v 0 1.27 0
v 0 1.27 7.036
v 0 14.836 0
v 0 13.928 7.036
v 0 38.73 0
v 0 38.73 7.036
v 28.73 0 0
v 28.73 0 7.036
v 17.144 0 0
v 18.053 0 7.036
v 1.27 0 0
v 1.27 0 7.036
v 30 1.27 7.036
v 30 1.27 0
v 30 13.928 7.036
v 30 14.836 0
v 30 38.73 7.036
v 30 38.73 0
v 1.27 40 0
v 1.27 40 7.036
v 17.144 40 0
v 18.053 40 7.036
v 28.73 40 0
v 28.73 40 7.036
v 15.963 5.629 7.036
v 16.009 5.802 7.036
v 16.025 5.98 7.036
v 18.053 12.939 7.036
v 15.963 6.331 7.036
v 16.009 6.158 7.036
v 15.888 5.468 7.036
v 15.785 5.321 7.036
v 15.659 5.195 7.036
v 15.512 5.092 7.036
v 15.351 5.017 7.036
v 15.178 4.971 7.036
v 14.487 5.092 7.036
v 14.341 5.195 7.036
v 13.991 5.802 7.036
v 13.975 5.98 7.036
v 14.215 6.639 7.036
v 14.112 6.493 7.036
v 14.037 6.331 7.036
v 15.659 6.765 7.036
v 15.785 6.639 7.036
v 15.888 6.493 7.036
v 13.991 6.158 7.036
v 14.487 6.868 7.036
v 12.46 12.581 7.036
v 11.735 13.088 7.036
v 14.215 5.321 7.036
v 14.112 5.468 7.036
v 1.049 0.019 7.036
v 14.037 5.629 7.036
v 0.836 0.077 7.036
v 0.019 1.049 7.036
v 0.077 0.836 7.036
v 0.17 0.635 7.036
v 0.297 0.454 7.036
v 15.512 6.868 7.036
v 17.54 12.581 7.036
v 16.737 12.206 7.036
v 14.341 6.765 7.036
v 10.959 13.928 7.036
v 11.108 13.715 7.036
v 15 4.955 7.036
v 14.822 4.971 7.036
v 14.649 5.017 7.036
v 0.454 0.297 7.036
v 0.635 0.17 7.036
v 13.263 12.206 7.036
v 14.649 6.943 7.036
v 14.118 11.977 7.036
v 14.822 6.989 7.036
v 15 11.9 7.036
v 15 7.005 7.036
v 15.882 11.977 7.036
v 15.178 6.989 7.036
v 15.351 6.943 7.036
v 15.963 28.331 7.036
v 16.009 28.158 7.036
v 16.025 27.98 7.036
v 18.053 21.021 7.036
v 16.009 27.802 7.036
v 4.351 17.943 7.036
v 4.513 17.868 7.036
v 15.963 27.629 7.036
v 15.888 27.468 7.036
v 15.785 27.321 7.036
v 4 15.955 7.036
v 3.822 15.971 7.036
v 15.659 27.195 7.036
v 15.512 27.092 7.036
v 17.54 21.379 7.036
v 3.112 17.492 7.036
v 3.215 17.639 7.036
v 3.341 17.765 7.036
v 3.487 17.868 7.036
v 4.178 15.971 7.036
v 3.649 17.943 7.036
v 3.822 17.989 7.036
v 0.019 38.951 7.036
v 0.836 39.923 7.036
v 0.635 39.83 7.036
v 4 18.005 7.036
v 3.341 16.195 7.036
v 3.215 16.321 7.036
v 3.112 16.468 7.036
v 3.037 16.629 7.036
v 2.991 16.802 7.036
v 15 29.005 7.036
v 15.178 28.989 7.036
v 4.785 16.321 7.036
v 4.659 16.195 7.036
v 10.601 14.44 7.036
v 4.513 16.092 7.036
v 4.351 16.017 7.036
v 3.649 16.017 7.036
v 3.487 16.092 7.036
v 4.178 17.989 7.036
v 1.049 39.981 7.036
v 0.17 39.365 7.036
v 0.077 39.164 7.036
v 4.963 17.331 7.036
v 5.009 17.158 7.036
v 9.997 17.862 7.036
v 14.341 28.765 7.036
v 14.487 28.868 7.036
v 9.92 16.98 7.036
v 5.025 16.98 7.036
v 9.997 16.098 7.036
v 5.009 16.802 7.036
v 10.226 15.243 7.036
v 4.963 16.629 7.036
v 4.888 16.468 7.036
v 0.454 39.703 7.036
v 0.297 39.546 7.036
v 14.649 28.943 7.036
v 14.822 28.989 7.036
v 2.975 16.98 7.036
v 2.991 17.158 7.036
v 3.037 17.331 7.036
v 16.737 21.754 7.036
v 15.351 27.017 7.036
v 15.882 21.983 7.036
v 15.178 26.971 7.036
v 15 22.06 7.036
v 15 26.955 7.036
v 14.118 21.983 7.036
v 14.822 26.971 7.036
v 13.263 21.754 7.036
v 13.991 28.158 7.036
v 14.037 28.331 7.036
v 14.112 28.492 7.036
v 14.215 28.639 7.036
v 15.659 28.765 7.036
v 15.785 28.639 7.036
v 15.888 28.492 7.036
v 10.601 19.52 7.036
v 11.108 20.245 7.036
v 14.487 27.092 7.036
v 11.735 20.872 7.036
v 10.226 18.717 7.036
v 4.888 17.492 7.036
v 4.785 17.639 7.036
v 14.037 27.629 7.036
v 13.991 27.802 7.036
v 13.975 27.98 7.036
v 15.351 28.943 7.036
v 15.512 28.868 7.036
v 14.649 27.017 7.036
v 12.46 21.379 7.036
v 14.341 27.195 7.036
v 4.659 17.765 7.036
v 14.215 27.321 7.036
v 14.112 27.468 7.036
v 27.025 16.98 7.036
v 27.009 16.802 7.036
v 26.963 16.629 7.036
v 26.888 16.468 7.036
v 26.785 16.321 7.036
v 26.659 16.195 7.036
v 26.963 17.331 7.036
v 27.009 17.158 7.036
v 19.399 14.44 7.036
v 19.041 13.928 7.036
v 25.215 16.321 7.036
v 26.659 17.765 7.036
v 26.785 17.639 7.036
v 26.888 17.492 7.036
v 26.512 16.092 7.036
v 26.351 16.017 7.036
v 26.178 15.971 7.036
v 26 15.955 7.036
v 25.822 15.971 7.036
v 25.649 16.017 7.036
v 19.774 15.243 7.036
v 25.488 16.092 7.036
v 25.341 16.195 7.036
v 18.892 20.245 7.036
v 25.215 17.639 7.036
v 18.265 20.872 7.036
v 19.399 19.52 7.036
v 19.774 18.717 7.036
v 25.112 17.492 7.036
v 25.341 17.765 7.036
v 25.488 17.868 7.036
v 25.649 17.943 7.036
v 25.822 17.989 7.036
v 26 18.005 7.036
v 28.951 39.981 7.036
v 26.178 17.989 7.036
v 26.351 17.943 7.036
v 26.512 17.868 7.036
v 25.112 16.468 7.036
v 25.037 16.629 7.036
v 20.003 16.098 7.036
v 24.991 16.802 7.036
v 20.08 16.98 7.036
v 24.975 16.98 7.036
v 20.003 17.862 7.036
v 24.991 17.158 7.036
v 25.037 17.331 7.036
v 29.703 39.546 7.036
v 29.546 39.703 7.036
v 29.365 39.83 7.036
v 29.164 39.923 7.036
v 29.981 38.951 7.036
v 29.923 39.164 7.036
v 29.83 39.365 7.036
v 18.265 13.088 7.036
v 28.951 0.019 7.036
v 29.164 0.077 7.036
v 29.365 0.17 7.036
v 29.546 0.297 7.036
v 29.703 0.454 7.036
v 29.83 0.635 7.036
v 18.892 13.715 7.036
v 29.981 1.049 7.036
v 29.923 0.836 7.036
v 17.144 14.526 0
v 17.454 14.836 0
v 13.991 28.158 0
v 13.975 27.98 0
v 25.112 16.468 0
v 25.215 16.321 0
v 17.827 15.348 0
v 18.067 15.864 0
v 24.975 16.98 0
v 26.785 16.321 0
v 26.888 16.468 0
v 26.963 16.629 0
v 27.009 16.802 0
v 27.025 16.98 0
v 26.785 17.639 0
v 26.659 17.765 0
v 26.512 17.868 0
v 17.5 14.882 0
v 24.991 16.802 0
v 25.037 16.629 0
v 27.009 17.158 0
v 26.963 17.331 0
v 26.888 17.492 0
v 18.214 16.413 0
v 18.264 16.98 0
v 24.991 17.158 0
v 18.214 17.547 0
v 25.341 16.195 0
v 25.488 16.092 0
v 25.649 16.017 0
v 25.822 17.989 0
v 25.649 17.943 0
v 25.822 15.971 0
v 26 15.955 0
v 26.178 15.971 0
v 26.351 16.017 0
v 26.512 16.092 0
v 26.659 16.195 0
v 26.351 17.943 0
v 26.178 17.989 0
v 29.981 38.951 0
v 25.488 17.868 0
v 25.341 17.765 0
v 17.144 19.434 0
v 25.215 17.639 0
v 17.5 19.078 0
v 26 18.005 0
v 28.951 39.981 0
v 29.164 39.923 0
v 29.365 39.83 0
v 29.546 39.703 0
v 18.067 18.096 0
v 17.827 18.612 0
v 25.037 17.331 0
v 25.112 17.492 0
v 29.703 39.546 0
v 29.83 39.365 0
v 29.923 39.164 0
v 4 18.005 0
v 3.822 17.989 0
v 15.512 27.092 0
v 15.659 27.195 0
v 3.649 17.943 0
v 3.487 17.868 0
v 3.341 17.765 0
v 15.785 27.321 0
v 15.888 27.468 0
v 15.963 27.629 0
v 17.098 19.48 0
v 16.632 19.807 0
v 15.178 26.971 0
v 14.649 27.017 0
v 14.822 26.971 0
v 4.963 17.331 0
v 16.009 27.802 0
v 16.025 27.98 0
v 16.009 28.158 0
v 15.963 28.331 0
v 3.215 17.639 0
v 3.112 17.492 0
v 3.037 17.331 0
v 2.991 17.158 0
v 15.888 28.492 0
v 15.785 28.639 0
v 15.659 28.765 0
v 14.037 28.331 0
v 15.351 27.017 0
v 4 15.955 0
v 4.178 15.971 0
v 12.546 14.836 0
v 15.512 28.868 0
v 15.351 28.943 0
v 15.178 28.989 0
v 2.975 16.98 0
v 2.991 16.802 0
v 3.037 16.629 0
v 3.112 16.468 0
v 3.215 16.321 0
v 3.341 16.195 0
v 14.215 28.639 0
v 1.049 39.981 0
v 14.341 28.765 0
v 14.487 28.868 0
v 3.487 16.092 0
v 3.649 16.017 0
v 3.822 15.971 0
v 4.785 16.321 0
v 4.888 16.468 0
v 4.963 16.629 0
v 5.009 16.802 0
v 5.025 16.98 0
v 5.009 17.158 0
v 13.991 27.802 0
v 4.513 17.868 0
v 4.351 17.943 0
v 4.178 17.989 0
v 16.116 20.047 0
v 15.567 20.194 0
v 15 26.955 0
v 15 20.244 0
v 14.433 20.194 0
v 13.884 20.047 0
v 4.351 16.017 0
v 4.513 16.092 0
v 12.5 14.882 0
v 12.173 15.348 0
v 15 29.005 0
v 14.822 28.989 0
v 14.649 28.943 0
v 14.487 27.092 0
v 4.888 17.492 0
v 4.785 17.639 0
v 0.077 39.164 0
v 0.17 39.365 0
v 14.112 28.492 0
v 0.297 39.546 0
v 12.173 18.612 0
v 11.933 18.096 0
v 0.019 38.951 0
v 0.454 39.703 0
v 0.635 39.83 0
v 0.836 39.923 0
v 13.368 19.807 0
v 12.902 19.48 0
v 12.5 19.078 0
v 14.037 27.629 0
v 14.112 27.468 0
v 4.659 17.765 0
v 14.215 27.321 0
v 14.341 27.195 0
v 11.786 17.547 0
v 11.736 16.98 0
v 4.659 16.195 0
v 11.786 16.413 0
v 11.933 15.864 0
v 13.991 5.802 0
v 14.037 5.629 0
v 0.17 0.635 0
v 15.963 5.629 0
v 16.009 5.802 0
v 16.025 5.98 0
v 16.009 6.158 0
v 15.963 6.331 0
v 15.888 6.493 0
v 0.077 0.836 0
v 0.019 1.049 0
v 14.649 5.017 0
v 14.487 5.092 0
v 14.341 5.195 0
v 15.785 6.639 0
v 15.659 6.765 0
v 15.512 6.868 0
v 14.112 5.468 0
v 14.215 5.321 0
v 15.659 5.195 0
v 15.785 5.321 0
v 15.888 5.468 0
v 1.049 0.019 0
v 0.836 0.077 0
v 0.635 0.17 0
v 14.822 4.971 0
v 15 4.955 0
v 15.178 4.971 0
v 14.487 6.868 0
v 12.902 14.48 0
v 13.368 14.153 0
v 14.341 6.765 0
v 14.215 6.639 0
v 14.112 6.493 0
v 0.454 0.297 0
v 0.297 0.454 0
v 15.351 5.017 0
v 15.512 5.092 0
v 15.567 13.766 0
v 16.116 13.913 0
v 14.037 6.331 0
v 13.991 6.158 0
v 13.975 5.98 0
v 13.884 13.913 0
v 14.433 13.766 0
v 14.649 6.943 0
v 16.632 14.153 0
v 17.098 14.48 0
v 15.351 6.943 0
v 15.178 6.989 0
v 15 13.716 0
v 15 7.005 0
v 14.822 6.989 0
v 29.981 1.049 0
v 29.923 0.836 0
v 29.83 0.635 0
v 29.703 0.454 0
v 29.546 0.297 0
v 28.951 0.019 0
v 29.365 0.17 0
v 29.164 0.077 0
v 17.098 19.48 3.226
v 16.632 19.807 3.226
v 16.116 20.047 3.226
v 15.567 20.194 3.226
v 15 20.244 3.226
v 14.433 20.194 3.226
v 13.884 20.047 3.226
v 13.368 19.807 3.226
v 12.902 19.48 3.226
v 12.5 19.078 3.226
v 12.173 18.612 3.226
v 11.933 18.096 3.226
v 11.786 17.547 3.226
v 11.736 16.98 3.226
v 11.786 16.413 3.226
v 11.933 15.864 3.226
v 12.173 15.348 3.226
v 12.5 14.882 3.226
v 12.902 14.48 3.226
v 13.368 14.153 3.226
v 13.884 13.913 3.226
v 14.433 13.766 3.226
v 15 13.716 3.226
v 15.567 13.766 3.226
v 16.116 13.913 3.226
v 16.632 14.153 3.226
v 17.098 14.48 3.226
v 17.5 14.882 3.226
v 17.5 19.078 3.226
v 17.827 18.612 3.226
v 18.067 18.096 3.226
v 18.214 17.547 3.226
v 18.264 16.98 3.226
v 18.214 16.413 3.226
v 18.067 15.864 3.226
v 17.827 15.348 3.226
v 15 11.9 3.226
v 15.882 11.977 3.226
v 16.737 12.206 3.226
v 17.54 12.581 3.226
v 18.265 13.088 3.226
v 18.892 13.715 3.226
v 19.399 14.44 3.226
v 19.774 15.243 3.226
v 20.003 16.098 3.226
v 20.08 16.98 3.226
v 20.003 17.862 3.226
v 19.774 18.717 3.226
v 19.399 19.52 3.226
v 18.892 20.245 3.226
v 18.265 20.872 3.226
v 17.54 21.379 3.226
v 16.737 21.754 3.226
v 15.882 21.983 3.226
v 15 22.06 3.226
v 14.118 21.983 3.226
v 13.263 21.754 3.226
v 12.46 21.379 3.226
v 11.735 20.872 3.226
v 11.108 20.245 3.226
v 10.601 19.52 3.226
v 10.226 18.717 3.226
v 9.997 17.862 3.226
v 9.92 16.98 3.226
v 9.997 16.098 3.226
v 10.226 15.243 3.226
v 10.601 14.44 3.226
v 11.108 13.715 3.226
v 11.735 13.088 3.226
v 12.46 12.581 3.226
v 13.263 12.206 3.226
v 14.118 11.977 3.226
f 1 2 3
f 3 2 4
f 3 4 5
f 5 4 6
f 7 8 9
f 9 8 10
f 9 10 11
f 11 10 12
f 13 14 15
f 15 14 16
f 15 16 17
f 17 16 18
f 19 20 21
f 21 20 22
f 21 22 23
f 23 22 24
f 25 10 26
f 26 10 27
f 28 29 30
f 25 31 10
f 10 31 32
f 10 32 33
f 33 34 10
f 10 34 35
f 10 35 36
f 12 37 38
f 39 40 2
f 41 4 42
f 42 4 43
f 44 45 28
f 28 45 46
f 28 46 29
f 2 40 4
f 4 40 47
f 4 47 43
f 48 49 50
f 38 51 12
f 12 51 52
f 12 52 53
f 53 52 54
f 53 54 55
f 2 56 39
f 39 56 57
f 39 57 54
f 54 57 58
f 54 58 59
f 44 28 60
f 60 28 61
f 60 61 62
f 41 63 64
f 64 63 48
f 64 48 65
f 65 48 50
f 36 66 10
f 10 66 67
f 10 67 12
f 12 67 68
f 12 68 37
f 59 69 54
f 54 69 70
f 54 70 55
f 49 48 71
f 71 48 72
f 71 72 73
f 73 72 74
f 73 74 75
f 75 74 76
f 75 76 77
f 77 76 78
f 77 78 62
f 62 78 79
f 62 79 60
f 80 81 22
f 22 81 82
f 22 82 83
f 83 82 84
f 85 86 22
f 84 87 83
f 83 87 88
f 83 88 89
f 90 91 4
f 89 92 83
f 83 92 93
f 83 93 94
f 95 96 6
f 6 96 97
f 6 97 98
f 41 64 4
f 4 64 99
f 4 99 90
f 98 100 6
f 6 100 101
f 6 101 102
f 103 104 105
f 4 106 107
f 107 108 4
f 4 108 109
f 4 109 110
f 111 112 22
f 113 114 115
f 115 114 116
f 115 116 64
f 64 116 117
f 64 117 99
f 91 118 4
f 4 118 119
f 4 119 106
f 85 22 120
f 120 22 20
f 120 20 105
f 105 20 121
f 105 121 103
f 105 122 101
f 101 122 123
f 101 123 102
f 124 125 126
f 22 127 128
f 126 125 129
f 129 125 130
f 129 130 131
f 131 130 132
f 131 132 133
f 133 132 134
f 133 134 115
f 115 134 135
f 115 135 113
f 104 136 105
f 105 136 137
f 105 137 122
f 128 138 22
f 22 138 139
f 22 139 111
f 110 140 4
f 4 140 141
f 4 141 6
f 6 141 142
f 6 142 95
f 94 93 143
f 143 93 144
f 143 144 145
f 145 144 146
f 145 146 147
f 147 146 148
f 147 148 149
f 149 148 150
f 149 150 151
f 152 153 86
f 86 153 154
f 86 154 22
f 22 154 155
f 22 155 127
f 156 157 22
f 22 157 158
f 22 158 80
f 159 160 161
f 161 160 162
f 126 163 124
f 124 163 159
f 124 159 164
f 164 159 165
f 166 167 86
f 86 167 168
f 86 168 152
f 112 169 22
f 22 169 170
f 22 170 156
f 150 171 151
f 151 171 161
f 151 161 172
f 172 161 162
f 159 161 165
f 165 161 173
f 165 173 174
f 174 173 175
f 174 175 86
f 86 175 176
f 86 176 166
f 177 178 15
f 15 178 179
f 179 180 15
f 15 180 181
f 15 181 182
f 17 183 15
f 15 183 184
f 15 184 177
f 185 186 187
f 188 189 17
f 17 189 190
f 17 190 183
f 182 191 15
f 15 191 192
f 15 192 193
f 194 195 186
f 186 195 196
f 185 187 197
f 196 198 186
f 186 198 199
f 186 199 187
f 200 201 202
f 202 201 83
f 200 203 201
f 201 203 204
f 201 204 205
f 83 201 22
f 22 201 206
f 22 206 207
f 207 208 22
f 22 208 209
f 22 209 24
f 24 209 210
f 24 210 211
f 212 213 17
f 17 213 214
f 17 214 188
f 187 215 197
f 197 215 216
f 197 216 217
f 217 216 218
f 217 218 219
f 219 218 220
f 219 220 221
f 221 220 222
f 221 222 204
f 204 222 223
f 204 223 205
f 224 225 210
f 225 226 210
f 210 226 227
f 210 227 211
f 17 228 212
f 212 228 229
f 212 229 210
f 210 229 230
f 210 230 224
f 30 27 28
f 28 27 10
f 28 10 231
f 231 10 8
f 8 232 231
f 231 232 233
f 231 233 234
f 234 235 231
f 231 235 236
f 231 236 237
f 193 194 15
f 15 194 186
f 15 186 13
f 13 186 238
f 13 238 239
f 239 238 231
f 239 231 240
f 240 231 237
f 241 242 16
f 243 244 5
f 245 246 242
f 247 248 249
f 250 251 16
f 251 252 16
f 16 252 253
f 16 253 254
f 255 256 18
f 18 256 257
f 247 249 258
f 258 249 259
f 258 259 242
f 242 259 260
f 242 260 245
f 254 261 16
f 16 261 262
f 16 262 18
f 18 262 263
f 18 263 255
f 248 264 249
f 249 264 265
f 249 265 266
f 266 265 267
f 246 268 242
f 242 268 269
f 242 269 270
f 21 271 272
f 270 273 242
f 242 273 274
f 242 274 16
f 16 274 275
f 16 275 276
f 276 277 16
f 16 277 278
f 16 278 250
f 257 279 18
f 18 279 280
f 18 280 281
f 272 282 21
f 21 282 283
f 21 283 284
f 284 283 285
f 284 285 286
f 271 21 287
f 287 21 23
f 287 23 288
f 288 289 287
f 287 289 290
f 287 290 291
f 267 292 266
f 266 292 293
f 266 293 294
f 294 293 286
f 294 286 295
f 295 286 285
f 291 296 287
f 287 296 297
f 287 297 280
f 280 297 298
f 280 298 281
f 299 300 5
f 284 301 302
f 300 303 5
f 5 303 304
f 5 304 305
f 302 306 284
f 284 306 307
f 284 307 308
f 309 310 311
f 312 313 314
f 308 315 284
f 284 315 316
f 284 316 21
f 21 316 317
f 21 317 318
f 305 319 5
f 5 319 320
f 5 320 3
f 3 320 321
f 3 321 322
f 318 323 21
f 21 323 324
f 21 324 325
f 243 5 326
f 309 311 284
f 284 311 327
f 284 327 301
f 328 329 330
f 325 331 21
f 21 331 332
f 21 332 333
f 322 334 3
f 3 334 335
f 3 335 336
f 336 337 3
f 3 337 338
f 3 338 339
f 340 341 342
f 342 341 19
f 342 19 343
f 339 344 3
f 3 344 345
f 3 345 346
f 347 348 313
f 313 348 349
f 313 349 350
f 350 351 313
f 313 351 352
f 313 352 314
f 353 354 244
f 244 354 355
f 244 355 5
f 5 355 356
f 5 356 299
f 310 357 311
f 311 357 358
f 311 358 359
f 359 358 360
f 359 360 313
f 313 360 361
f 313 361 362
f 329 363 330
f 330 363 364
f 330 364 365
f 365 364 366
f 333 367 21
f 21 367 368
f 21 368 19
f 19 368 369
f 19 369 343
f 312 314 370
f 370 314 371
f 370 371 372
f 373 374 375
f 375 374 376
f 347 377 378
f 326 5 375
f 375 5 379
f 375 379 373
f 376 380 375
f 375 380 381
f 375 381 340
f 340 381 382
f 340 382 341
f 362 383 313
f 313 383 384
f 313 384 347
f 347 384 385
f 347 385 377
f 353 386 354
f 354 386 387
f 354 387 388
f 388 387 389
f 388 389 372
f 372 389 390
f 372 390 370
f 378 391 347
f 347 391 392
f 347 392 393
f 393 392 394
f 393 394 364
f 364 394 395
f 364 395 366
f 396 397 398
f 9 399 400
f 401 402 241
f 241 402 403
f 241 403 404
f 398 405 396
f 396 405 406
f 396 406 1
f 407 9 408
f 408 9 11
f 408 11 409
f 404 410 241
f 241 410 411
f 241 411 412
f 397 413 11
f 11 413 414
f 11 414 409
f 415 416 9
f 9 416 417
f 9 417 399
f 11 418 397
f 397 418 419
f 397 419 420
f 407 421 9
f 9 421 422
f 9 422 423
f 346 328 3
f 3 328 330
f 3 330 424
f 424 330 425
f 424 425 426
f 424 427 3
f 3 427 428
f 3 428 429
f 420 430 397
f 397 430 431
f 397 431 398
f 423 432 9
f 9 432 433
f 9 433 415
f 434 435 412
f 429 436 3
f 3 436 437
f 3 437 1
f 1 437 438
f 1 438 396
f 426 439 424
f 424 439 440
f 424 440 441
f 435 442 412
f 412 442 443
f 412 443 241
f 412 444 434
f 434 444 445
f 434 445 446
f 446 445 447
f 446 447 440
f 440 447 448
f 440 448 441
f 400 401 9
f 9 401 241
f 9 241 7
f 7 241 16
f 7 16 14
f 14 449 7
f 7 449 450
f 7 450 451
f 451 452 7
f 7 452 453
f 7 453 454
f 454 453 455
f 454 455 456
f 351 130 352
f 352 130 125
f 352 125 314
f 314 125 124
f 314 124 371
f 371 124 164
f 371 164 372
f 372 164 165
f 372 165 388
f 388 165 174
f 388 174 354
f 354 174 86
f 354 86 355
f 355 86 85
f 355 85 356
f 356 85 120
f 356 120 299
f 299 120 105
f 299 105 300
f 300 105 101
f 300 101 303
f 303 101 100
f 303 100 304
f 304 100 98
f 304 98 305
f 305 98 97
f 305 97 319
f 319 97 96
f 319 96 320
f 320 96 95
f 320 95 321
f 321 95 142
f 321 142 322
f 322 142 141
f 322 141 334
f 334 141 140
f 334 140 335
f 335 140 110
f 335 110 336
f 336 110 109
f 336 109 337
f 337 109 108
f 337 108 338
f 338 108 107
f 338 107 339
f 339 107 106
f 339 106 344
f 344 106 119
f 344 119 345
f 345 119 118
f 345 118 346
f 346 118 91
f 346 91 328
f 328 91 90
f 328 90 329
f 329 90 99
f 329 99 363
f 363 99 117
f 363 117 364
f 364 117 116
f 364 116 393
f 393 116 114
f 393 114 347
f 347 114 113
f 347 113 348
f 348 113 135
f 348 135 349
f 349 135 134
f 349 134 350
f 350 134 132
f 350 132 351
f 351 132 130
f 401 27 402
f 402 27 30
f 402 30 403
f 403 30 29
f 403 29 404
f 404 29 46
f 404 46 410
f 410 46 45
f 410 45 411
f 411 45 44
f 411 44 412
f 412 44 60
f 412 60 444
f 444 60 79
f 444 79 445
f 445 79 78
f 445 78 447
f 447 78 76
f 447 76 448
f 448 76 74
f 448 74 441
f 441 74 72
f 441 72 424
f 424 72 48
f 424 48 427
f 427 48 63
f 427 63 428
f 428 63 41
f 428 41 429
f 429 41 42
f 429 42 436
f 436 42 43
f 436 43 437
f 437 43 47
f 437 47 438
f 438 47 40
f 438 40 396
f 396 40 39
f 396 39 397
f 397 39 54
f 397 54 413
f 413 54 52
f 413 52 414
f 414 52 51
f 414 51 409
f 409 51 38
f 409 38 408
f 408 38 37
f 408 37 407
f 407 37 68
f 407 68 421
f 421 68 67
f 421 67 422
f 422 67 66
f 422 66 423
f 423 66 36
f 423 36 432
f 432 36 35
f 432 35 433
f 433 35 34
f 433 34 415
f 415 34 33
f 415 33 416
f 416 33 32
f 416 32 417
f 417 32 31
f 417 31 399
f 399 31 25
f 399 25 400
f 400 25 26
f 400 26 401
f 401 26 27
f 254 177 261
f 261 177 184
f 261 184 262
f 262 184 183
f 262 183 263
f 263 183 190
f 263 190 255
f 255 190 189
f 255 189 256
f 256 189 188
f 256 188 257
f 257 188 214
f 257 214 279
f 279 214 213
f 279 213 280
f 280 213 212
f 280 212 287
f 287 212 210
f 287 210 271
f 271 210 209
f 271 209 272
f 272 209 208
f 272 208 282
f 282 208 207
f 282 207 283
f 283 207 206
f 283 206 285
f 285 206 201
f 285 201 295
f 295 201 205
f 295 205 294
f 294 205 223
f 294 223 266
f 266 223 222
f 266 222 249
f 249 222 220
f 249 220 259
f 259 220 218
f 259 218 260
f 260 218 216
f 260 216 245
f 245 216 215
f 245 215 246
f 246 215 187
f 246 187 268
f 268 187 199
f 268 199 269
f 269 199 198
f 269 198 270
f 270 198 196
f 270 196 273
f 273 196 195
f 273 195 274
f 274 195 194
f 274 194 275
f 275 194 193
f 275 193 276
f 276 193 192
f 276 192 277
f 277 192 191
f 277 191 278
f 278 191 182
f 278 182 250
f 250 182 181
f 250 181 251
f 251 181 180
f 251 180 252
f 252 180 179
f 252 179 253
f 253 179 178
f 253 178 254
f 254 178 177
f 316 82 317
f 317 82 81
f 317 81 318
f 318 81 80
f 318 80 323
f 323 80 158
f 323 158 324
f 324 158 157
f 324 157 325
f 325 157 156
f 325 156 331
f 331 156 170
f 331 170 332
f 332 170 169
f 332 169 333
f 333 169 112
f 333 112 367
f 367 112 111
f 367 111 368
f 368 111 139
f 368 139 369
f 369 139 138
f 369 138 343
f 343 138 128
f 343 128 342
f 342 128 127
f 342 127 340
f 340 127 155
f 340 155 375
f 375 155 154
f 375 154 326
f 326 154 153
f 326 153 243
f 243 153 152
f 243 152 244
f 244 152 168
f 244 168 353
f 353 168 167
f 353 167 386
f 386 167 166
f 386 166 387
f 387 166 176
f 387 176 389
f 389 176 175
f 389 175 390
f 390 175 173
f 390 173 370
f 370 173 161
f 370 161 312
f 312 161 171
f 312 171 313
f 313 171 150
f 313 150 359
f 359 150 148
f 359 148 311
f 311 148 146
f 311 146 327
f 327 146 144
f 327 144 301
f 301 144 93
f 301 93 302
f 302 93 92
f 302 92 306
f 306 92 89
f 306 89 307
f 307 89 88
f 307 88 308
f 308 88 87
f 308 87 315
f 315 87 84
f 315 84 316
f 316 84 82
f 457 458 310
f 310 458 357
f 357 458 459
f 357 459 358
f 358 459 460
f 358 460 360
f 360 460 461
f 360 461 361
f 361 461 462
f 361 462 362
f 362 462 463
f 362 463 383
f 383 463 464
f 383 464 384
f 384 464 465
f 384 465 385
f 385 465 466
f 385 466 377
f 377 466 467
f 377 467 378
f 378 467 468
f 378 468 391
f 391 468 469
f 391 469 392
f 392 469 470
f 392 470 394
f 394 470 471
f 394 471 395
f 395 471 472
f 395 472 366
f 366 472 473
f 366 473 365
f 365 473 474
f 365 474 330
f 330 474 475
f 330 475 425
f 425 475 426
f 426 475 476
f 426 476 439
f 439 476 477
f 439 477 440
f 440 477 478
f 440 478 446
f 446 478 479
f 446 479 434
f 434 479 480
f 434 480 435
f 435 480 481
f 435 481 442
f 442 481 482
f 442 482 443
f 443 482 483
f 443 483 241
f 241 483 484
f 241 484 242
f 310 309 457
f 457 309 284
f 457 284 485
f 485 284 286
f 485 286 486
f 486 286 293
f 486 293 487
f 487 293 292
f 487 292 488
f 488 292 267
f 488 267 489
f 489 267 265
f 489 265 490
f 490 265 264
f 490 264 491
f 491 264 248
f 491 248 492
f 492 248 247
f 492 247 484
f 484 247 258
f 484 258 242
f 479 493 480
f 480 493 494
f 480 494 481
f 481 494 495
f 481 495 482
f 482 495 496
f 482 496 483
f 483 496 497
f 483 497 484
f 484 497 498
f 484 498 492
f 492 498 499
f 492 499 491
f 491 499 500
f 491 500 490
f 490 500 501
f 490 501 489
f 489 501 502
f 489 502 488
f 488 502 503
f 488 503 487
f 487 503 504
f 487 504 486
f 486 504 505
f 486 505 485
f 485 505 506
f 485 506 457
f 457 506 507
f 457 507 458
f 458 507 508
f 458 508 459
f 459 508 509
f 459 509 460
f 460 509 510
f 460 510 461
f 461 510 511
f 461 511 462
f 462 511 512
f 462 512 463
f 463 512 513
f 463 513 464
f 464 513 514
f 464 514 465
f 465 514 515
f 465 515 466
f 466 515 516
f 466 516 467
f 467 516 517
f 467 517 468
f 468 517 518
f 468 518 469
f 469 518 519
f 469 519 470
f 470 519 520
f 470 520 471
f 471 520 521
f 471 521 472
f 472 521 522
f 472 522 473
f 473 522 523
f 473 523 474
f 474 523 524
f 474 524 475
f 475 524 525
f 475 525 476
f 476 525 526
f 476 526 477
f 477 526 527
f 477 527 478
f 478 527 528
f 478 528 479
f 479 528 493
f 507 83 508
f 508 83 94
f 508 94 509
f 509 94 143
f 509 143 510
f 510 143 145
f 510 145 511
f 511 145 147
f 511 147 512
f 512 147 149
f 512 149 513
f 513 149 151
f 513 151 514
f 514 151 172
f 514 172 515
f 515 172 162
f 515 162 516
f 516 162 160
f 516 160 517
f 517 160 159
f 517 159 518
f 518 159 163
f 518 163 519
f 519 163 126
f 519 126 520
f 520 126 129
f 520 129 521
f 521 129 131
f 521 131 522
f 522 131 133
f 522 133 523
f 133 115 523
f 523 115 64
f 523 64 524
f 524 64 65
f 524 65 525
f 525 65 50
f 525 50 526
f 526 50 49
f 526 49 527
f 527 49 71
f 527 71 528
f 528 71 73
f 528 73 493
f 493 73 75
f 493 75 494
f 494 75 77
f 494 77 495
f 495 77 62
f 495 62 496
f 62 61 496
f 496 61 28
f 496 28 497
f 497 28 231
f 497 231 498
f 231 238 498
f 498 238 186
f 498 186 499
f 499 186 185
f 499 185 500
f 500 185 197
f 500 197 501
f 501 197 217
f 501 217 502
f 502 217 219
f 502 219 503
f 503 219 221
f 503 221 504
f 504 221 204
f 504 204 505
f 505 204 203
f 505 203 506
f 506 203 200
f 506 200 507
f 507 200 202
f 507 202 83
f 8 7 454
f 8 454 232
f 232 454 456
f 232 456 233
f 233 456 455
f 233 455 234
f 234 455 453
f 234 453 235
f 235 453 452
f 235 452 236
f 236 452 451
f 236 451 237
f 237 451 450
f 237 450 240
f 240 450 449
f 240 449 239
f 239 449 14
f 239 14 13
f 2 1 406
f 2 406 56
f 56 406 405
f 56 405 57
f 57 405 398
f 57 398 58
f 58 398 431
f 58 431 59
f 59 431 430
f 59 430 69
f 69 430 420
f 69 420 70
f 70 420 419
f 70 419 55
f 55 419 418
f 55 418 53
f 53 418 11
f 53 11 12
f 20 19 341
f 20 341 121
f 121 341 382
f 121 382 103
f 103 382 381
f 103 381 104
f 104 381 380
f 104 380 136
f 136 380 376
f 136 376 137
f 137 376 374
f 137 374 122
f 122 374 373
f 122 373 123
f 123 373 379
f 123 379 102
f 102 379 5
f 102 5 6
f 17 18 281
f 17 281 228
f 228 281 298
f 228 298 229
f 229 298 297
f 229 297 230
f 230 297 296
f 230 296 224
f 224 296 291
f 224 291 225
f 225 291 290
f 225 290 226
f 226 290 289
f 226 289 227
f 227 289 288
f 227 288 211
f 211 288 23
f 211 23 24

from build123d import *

# Parameters (mm, degrees)
SKETCH1_W                                        = 30
SKETCH1_H                                        = 40
BOSS_EXTRUDE1_DEPTH                              = 7.0358
TAP_DRILL_FOR_M2_5X0_45_TAP1_D                   = 2.05
CBORE_FOR_1_4_SOCKET_HEAD_CAP_SCREW1_D           = 6.5278
CBORE_FOR_1_4_SOCKET_HEAD_CAP_SCREW1_CBORE_D     = 10.16
CBORE_FOR_1_4_SOCKET_HEAD_CAP_SCREW1_CBORE_DEPTH = 3.81
FILLET1_R                                        = 1.27


with BuildPart() as part:
    # Sketch1 → Boss-Extrude1 (new body)
    with BuildSketch(Plane.XY):
        with Locations((15, 20)):
            Rectangle(SKETCH1_W, SKETCH1_H)
    extrude(amount=BOSS_EXTRUDE1_DEPTH)

    # Tap Drill for M2.5x0.45 Tap1 (through all)
    with Locations(Plane.XY.offset(7.0358)):
        with Locations((15, 27.98), (26, 16.98), (15, 5.98), (4, 16.98)):
            Hole(TAP_DRILL_FOR_M2_5X0_45_TAP1_D / 2)

    # CBORE for 1/4 Socket Head Cap Screw1 (through all)
    with Locations(Plane.XY.offset(7.0358)):
        with Locations((15, 16.98)):
            CounterBoreHole(CBORE_FOR_1_4_SOCKET_HEAD_CAP_SCREW1_D / 2, CBORE_FOR_1_4_SOCKET_HEAD_CAP_SCREW1_CBORE_D / 2, CBORE_FOR_1_4_SOCKET_HEAD_CAP_SCREW1_CBORE_DEPTH)

    # Fillet1
    fillet1_edges = [part.edges().sort_by_distance(p)[0] for p in [
        (0, 40, 3.5179),
        (30, 40, 3.5179),
        (30, 0, 3.5179),
        (0, 0, 3.5179),
    ]]
    fillet(fillet1_edges, radius=FILLET1_R)


solid = part.part
